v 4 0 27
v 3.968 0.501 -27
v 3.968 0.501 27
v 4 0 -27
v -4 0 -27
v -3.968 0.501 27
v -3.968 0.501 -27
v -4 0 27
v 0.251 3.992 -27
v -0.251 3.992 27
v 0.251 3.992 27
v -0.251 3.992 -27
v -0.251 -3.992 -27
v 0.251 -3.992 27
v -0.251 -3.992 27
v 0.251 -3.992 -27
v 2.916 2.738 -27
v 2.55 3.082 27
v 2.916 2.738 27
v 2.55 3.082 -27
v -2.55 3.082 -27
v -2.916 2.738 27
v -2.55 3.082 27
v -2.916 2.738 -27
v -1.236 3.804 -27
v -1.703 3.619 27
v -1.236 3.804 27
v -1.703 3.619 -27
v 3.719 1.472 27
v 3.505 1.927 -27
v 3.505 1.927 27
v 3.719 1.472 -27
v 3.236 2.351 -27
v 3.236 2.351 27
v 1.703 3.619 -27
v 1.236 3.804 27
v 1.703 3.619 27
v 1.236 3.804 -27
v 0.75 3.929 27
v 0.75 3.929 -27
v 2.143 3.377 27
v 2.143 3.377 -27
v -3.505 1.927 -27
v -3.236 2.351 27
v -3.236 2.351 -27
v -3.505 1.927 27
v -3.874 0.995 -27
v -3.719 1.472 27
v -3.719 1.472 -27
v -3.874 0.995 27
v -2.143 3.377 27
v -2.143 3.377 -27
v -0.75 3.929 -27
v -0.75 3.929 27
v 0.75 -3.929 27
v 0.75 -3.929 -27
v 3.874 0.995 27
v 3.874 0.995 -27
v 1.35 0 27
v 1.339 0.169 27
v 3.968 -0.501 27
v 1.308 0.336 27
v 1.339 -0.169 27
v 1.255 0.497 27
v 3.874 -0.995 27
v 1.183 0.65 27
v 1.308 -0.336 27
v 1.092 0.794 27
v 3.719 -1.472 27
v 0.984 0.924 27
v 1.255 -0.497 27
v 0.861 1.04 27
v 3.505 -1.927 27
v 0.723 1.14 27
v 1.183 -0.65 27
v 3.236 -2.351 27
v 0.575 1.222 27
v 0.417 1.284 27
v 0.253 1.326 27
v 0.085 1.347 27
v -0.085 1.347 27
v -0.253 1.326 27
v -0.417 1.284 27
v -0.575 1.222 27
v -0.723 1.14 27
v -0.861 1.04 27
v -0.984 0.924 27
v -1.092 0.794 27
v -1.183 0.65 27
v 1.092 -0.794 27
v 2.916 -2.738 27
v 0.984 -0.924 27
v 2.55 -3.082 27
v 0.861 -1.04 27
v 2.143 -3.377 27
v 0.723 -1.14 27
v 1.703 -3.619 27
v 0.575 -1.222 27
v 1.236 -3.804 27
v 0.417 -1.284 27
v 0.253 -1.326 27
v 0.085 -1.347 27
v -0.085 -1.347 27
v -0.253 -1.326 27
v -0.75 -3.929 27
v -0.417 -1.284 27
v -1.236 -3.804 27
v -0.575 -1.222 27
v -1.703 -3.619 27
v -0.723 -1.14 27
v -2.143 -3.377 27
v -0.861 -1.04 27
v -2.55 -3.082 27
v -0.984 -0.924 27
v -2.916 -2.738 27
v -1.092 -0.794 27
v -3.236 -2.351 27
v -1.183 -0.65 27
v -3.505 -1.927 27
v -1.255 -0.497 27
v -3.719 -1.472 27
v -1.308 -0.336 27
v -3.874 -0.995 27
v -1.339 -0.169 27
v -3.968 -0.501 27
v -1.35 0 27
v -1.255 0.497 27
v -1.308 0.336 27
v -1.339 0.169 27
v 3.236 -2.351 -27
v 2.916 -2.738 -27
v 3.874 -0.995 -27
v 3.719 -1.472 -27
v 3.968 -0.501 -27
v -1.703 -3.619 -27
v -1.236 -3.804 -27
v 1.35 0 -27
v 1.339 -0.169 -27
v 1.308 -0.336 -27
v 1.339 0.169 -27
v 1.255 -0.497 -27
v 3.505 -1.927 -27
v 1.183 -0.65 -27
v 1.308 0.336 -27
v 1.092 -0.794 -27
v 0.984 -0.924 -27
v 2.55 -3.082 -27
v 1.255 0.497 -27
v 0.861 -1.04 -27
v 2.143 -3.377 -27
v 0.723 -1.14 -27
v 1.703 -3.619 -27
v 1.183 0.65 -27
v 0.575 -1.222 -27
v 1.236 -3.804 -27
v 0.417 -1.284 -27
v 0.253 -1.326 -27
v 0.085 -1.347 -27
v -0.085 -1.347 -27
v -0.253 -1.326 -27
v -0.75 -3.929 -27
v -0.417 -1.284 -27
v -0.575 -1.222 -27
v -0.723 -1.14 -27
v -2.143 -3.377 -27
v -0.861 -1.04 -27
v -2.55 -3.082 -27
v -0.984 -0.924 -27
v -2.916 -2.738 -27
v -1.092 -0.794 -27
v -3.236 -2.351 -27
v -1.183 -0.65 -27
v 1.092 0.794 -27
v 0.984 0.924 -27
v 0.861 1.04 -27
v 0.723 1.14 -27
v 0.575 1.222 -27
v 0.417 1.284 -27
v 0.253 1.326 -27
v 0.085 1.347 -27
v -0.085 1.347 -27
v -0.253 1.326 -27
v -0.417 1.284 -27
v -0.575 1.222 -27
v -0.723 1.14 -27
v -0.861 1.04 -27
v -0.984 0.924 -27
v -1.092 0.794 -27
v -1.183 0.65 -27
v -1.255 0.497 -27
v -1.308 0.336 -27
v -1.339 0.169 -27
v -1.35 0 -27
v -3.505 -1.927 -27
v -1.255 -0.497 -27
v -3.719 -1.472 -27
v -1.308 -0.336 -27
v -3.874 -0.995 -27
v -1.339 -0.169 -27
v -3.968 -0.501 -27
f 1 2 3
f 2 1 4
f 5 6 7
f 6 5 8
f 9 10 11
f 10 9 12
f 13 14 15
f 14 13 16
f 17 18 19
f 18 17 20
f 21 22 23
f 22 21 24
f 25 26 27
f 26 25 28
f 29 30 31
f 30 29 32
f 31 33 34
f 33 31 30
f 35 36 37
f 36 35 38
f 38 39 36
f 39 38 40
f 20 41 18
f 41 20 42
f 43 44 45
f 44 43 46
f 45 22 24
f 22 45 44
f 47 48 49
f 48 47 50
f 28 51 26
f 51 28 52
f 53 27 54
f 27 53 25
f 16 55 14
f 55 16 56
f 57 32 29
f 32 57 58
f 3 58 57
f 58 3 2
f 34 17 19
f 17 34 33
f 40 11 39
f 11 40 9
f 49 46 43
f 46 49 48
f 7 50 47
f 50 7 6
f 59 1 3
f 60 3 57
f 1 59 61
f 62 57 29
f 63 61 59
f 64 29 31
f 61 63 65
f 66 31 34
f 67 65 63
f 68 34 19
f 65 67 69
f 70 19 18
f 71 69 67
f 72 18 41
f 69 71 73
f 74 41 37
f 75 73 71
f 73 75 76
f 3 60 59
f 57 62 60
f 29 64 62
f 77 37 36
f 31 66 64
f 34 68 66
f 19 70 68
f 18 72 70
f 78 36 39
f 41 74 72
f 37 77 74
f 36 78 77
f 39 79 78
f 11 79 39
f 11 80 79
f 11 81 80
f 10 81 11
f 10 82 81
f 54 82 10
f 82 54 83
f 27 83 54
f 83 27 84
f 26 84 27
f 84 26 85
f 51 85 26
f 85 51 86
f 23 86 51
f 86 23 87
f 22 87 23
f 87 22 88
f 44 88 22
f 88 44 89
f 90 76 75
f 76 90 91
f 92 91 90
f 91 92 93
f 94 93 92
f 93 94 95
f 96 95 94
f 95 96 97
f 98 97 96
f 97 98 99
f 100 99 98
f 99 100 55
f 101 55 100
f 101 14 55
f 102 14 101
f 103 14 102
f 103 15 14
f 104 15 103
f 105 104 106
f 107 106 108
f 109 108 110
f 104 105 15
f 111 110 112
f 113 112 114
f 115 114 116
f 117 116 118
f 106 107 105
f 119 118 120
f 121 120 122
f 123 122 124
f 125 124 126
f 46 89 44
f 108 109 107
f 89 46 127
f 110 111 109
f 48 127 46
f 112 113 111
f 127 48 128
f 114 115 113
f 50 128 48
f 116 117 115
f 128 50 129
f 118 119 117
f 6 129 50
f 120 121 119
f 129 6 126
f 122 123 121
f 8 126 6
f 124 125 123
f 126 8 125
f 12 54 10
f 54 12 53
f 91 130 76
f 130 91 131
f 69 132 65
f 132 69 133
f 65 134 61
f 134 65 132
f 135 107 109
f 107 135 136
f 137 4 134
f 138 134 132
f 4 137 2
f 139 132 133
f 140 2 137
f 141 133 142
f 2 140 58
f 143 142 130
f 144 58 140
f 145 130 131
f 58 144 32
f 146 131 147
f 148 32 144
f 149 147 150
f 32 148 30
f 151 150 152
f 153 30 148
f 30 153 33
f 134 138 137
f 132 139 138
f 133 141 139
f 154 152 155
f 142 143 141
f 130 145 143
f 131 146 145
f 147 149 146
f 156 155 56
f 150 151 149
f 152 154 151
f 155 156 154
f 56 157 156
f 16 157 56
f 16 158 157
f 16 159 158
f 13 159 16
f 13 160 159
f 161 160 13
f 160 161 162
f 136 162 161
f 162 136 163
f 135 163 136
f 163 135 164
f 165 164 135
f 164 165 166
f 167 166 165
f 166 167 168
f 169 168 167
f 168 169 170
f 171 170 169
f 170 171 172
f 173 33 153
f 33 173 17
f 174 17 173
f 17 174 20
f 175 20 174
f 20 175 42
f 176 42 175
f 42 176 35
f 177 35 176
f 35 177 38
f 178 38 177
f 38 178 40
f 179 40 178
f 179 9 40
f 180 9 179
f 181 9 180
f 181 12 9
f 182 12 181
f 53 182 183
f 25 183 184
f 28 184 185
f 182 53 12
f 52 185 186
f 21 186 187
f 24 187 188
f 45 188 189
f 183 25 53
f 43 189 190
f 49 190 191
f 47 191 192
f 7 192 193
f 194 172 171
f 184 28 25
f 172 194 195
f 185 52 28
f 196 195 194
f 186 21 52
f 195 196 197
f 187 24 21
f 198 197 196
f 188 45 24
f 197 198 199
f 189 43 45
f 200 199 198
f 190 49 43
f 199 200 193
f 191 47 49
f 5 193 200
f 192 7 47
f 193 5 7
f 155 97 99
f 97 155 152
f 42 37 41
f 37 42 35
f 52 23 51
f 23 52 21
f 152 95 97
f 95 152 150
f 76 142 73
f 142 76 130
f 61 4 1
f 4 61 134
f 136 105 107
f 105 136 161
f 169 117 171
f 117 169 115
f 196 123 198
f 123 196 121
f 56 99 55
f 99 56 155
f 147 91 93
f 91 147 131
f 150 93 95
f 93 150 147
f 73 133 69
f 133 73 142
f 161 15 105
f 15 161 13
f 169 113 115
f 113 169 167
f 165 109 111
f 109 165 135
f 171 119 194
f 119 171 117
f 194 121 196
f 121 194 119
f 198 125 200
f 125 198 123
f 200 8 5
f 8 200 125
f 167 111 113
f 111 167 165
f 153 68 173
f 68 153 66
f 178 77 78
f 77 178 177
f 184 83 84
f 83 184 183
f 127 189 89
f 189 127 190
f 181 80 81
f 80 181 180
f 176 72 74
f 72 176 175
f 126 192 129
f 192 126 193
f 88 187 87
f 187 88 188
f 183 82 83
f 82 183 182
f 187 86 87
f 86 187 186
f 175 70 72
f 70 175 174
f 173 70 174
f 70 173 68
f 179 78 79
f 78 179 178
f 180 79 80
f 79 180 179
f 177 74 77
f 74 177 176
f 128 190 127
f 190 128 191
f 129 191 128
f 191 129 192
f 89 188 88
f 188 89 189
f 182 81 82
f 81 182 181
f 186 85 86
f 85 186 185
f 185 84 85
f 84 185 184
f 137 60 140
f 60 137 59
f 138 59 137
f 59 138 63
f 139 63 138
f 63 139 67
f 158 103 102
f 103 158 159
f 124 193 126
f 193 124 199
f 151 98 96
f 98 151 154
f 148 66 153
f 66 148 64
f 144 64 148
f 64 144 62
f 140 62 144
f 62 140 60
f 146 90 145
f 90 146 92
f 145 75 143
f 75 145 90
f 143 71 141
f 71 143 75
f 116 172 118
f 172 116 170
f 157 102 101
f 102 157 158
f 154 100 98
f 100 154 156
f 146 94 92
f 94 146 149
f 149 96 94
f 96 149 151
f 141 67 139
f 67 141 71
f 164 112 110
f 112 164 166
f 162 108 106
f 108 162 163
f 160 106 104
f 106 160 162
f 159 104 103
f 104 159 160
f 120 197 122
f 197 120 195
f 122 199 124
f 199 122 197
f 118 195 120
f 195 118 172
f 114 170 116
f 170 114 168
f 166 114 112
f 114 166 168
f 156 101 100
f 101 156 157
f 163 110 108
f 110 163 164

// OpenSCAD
$fn = 50;


difference() {
	union() {
		translate(v = [0, 0, -27.0000000000]) {
			cylinder(h = 54, r = 4.0000000000);
		}
	}
	union() {
		translate(v = [0, 0, -100.0000000000]) {
			cylinder(h = 200, r = 1.3500000000);
		}
	}
}
